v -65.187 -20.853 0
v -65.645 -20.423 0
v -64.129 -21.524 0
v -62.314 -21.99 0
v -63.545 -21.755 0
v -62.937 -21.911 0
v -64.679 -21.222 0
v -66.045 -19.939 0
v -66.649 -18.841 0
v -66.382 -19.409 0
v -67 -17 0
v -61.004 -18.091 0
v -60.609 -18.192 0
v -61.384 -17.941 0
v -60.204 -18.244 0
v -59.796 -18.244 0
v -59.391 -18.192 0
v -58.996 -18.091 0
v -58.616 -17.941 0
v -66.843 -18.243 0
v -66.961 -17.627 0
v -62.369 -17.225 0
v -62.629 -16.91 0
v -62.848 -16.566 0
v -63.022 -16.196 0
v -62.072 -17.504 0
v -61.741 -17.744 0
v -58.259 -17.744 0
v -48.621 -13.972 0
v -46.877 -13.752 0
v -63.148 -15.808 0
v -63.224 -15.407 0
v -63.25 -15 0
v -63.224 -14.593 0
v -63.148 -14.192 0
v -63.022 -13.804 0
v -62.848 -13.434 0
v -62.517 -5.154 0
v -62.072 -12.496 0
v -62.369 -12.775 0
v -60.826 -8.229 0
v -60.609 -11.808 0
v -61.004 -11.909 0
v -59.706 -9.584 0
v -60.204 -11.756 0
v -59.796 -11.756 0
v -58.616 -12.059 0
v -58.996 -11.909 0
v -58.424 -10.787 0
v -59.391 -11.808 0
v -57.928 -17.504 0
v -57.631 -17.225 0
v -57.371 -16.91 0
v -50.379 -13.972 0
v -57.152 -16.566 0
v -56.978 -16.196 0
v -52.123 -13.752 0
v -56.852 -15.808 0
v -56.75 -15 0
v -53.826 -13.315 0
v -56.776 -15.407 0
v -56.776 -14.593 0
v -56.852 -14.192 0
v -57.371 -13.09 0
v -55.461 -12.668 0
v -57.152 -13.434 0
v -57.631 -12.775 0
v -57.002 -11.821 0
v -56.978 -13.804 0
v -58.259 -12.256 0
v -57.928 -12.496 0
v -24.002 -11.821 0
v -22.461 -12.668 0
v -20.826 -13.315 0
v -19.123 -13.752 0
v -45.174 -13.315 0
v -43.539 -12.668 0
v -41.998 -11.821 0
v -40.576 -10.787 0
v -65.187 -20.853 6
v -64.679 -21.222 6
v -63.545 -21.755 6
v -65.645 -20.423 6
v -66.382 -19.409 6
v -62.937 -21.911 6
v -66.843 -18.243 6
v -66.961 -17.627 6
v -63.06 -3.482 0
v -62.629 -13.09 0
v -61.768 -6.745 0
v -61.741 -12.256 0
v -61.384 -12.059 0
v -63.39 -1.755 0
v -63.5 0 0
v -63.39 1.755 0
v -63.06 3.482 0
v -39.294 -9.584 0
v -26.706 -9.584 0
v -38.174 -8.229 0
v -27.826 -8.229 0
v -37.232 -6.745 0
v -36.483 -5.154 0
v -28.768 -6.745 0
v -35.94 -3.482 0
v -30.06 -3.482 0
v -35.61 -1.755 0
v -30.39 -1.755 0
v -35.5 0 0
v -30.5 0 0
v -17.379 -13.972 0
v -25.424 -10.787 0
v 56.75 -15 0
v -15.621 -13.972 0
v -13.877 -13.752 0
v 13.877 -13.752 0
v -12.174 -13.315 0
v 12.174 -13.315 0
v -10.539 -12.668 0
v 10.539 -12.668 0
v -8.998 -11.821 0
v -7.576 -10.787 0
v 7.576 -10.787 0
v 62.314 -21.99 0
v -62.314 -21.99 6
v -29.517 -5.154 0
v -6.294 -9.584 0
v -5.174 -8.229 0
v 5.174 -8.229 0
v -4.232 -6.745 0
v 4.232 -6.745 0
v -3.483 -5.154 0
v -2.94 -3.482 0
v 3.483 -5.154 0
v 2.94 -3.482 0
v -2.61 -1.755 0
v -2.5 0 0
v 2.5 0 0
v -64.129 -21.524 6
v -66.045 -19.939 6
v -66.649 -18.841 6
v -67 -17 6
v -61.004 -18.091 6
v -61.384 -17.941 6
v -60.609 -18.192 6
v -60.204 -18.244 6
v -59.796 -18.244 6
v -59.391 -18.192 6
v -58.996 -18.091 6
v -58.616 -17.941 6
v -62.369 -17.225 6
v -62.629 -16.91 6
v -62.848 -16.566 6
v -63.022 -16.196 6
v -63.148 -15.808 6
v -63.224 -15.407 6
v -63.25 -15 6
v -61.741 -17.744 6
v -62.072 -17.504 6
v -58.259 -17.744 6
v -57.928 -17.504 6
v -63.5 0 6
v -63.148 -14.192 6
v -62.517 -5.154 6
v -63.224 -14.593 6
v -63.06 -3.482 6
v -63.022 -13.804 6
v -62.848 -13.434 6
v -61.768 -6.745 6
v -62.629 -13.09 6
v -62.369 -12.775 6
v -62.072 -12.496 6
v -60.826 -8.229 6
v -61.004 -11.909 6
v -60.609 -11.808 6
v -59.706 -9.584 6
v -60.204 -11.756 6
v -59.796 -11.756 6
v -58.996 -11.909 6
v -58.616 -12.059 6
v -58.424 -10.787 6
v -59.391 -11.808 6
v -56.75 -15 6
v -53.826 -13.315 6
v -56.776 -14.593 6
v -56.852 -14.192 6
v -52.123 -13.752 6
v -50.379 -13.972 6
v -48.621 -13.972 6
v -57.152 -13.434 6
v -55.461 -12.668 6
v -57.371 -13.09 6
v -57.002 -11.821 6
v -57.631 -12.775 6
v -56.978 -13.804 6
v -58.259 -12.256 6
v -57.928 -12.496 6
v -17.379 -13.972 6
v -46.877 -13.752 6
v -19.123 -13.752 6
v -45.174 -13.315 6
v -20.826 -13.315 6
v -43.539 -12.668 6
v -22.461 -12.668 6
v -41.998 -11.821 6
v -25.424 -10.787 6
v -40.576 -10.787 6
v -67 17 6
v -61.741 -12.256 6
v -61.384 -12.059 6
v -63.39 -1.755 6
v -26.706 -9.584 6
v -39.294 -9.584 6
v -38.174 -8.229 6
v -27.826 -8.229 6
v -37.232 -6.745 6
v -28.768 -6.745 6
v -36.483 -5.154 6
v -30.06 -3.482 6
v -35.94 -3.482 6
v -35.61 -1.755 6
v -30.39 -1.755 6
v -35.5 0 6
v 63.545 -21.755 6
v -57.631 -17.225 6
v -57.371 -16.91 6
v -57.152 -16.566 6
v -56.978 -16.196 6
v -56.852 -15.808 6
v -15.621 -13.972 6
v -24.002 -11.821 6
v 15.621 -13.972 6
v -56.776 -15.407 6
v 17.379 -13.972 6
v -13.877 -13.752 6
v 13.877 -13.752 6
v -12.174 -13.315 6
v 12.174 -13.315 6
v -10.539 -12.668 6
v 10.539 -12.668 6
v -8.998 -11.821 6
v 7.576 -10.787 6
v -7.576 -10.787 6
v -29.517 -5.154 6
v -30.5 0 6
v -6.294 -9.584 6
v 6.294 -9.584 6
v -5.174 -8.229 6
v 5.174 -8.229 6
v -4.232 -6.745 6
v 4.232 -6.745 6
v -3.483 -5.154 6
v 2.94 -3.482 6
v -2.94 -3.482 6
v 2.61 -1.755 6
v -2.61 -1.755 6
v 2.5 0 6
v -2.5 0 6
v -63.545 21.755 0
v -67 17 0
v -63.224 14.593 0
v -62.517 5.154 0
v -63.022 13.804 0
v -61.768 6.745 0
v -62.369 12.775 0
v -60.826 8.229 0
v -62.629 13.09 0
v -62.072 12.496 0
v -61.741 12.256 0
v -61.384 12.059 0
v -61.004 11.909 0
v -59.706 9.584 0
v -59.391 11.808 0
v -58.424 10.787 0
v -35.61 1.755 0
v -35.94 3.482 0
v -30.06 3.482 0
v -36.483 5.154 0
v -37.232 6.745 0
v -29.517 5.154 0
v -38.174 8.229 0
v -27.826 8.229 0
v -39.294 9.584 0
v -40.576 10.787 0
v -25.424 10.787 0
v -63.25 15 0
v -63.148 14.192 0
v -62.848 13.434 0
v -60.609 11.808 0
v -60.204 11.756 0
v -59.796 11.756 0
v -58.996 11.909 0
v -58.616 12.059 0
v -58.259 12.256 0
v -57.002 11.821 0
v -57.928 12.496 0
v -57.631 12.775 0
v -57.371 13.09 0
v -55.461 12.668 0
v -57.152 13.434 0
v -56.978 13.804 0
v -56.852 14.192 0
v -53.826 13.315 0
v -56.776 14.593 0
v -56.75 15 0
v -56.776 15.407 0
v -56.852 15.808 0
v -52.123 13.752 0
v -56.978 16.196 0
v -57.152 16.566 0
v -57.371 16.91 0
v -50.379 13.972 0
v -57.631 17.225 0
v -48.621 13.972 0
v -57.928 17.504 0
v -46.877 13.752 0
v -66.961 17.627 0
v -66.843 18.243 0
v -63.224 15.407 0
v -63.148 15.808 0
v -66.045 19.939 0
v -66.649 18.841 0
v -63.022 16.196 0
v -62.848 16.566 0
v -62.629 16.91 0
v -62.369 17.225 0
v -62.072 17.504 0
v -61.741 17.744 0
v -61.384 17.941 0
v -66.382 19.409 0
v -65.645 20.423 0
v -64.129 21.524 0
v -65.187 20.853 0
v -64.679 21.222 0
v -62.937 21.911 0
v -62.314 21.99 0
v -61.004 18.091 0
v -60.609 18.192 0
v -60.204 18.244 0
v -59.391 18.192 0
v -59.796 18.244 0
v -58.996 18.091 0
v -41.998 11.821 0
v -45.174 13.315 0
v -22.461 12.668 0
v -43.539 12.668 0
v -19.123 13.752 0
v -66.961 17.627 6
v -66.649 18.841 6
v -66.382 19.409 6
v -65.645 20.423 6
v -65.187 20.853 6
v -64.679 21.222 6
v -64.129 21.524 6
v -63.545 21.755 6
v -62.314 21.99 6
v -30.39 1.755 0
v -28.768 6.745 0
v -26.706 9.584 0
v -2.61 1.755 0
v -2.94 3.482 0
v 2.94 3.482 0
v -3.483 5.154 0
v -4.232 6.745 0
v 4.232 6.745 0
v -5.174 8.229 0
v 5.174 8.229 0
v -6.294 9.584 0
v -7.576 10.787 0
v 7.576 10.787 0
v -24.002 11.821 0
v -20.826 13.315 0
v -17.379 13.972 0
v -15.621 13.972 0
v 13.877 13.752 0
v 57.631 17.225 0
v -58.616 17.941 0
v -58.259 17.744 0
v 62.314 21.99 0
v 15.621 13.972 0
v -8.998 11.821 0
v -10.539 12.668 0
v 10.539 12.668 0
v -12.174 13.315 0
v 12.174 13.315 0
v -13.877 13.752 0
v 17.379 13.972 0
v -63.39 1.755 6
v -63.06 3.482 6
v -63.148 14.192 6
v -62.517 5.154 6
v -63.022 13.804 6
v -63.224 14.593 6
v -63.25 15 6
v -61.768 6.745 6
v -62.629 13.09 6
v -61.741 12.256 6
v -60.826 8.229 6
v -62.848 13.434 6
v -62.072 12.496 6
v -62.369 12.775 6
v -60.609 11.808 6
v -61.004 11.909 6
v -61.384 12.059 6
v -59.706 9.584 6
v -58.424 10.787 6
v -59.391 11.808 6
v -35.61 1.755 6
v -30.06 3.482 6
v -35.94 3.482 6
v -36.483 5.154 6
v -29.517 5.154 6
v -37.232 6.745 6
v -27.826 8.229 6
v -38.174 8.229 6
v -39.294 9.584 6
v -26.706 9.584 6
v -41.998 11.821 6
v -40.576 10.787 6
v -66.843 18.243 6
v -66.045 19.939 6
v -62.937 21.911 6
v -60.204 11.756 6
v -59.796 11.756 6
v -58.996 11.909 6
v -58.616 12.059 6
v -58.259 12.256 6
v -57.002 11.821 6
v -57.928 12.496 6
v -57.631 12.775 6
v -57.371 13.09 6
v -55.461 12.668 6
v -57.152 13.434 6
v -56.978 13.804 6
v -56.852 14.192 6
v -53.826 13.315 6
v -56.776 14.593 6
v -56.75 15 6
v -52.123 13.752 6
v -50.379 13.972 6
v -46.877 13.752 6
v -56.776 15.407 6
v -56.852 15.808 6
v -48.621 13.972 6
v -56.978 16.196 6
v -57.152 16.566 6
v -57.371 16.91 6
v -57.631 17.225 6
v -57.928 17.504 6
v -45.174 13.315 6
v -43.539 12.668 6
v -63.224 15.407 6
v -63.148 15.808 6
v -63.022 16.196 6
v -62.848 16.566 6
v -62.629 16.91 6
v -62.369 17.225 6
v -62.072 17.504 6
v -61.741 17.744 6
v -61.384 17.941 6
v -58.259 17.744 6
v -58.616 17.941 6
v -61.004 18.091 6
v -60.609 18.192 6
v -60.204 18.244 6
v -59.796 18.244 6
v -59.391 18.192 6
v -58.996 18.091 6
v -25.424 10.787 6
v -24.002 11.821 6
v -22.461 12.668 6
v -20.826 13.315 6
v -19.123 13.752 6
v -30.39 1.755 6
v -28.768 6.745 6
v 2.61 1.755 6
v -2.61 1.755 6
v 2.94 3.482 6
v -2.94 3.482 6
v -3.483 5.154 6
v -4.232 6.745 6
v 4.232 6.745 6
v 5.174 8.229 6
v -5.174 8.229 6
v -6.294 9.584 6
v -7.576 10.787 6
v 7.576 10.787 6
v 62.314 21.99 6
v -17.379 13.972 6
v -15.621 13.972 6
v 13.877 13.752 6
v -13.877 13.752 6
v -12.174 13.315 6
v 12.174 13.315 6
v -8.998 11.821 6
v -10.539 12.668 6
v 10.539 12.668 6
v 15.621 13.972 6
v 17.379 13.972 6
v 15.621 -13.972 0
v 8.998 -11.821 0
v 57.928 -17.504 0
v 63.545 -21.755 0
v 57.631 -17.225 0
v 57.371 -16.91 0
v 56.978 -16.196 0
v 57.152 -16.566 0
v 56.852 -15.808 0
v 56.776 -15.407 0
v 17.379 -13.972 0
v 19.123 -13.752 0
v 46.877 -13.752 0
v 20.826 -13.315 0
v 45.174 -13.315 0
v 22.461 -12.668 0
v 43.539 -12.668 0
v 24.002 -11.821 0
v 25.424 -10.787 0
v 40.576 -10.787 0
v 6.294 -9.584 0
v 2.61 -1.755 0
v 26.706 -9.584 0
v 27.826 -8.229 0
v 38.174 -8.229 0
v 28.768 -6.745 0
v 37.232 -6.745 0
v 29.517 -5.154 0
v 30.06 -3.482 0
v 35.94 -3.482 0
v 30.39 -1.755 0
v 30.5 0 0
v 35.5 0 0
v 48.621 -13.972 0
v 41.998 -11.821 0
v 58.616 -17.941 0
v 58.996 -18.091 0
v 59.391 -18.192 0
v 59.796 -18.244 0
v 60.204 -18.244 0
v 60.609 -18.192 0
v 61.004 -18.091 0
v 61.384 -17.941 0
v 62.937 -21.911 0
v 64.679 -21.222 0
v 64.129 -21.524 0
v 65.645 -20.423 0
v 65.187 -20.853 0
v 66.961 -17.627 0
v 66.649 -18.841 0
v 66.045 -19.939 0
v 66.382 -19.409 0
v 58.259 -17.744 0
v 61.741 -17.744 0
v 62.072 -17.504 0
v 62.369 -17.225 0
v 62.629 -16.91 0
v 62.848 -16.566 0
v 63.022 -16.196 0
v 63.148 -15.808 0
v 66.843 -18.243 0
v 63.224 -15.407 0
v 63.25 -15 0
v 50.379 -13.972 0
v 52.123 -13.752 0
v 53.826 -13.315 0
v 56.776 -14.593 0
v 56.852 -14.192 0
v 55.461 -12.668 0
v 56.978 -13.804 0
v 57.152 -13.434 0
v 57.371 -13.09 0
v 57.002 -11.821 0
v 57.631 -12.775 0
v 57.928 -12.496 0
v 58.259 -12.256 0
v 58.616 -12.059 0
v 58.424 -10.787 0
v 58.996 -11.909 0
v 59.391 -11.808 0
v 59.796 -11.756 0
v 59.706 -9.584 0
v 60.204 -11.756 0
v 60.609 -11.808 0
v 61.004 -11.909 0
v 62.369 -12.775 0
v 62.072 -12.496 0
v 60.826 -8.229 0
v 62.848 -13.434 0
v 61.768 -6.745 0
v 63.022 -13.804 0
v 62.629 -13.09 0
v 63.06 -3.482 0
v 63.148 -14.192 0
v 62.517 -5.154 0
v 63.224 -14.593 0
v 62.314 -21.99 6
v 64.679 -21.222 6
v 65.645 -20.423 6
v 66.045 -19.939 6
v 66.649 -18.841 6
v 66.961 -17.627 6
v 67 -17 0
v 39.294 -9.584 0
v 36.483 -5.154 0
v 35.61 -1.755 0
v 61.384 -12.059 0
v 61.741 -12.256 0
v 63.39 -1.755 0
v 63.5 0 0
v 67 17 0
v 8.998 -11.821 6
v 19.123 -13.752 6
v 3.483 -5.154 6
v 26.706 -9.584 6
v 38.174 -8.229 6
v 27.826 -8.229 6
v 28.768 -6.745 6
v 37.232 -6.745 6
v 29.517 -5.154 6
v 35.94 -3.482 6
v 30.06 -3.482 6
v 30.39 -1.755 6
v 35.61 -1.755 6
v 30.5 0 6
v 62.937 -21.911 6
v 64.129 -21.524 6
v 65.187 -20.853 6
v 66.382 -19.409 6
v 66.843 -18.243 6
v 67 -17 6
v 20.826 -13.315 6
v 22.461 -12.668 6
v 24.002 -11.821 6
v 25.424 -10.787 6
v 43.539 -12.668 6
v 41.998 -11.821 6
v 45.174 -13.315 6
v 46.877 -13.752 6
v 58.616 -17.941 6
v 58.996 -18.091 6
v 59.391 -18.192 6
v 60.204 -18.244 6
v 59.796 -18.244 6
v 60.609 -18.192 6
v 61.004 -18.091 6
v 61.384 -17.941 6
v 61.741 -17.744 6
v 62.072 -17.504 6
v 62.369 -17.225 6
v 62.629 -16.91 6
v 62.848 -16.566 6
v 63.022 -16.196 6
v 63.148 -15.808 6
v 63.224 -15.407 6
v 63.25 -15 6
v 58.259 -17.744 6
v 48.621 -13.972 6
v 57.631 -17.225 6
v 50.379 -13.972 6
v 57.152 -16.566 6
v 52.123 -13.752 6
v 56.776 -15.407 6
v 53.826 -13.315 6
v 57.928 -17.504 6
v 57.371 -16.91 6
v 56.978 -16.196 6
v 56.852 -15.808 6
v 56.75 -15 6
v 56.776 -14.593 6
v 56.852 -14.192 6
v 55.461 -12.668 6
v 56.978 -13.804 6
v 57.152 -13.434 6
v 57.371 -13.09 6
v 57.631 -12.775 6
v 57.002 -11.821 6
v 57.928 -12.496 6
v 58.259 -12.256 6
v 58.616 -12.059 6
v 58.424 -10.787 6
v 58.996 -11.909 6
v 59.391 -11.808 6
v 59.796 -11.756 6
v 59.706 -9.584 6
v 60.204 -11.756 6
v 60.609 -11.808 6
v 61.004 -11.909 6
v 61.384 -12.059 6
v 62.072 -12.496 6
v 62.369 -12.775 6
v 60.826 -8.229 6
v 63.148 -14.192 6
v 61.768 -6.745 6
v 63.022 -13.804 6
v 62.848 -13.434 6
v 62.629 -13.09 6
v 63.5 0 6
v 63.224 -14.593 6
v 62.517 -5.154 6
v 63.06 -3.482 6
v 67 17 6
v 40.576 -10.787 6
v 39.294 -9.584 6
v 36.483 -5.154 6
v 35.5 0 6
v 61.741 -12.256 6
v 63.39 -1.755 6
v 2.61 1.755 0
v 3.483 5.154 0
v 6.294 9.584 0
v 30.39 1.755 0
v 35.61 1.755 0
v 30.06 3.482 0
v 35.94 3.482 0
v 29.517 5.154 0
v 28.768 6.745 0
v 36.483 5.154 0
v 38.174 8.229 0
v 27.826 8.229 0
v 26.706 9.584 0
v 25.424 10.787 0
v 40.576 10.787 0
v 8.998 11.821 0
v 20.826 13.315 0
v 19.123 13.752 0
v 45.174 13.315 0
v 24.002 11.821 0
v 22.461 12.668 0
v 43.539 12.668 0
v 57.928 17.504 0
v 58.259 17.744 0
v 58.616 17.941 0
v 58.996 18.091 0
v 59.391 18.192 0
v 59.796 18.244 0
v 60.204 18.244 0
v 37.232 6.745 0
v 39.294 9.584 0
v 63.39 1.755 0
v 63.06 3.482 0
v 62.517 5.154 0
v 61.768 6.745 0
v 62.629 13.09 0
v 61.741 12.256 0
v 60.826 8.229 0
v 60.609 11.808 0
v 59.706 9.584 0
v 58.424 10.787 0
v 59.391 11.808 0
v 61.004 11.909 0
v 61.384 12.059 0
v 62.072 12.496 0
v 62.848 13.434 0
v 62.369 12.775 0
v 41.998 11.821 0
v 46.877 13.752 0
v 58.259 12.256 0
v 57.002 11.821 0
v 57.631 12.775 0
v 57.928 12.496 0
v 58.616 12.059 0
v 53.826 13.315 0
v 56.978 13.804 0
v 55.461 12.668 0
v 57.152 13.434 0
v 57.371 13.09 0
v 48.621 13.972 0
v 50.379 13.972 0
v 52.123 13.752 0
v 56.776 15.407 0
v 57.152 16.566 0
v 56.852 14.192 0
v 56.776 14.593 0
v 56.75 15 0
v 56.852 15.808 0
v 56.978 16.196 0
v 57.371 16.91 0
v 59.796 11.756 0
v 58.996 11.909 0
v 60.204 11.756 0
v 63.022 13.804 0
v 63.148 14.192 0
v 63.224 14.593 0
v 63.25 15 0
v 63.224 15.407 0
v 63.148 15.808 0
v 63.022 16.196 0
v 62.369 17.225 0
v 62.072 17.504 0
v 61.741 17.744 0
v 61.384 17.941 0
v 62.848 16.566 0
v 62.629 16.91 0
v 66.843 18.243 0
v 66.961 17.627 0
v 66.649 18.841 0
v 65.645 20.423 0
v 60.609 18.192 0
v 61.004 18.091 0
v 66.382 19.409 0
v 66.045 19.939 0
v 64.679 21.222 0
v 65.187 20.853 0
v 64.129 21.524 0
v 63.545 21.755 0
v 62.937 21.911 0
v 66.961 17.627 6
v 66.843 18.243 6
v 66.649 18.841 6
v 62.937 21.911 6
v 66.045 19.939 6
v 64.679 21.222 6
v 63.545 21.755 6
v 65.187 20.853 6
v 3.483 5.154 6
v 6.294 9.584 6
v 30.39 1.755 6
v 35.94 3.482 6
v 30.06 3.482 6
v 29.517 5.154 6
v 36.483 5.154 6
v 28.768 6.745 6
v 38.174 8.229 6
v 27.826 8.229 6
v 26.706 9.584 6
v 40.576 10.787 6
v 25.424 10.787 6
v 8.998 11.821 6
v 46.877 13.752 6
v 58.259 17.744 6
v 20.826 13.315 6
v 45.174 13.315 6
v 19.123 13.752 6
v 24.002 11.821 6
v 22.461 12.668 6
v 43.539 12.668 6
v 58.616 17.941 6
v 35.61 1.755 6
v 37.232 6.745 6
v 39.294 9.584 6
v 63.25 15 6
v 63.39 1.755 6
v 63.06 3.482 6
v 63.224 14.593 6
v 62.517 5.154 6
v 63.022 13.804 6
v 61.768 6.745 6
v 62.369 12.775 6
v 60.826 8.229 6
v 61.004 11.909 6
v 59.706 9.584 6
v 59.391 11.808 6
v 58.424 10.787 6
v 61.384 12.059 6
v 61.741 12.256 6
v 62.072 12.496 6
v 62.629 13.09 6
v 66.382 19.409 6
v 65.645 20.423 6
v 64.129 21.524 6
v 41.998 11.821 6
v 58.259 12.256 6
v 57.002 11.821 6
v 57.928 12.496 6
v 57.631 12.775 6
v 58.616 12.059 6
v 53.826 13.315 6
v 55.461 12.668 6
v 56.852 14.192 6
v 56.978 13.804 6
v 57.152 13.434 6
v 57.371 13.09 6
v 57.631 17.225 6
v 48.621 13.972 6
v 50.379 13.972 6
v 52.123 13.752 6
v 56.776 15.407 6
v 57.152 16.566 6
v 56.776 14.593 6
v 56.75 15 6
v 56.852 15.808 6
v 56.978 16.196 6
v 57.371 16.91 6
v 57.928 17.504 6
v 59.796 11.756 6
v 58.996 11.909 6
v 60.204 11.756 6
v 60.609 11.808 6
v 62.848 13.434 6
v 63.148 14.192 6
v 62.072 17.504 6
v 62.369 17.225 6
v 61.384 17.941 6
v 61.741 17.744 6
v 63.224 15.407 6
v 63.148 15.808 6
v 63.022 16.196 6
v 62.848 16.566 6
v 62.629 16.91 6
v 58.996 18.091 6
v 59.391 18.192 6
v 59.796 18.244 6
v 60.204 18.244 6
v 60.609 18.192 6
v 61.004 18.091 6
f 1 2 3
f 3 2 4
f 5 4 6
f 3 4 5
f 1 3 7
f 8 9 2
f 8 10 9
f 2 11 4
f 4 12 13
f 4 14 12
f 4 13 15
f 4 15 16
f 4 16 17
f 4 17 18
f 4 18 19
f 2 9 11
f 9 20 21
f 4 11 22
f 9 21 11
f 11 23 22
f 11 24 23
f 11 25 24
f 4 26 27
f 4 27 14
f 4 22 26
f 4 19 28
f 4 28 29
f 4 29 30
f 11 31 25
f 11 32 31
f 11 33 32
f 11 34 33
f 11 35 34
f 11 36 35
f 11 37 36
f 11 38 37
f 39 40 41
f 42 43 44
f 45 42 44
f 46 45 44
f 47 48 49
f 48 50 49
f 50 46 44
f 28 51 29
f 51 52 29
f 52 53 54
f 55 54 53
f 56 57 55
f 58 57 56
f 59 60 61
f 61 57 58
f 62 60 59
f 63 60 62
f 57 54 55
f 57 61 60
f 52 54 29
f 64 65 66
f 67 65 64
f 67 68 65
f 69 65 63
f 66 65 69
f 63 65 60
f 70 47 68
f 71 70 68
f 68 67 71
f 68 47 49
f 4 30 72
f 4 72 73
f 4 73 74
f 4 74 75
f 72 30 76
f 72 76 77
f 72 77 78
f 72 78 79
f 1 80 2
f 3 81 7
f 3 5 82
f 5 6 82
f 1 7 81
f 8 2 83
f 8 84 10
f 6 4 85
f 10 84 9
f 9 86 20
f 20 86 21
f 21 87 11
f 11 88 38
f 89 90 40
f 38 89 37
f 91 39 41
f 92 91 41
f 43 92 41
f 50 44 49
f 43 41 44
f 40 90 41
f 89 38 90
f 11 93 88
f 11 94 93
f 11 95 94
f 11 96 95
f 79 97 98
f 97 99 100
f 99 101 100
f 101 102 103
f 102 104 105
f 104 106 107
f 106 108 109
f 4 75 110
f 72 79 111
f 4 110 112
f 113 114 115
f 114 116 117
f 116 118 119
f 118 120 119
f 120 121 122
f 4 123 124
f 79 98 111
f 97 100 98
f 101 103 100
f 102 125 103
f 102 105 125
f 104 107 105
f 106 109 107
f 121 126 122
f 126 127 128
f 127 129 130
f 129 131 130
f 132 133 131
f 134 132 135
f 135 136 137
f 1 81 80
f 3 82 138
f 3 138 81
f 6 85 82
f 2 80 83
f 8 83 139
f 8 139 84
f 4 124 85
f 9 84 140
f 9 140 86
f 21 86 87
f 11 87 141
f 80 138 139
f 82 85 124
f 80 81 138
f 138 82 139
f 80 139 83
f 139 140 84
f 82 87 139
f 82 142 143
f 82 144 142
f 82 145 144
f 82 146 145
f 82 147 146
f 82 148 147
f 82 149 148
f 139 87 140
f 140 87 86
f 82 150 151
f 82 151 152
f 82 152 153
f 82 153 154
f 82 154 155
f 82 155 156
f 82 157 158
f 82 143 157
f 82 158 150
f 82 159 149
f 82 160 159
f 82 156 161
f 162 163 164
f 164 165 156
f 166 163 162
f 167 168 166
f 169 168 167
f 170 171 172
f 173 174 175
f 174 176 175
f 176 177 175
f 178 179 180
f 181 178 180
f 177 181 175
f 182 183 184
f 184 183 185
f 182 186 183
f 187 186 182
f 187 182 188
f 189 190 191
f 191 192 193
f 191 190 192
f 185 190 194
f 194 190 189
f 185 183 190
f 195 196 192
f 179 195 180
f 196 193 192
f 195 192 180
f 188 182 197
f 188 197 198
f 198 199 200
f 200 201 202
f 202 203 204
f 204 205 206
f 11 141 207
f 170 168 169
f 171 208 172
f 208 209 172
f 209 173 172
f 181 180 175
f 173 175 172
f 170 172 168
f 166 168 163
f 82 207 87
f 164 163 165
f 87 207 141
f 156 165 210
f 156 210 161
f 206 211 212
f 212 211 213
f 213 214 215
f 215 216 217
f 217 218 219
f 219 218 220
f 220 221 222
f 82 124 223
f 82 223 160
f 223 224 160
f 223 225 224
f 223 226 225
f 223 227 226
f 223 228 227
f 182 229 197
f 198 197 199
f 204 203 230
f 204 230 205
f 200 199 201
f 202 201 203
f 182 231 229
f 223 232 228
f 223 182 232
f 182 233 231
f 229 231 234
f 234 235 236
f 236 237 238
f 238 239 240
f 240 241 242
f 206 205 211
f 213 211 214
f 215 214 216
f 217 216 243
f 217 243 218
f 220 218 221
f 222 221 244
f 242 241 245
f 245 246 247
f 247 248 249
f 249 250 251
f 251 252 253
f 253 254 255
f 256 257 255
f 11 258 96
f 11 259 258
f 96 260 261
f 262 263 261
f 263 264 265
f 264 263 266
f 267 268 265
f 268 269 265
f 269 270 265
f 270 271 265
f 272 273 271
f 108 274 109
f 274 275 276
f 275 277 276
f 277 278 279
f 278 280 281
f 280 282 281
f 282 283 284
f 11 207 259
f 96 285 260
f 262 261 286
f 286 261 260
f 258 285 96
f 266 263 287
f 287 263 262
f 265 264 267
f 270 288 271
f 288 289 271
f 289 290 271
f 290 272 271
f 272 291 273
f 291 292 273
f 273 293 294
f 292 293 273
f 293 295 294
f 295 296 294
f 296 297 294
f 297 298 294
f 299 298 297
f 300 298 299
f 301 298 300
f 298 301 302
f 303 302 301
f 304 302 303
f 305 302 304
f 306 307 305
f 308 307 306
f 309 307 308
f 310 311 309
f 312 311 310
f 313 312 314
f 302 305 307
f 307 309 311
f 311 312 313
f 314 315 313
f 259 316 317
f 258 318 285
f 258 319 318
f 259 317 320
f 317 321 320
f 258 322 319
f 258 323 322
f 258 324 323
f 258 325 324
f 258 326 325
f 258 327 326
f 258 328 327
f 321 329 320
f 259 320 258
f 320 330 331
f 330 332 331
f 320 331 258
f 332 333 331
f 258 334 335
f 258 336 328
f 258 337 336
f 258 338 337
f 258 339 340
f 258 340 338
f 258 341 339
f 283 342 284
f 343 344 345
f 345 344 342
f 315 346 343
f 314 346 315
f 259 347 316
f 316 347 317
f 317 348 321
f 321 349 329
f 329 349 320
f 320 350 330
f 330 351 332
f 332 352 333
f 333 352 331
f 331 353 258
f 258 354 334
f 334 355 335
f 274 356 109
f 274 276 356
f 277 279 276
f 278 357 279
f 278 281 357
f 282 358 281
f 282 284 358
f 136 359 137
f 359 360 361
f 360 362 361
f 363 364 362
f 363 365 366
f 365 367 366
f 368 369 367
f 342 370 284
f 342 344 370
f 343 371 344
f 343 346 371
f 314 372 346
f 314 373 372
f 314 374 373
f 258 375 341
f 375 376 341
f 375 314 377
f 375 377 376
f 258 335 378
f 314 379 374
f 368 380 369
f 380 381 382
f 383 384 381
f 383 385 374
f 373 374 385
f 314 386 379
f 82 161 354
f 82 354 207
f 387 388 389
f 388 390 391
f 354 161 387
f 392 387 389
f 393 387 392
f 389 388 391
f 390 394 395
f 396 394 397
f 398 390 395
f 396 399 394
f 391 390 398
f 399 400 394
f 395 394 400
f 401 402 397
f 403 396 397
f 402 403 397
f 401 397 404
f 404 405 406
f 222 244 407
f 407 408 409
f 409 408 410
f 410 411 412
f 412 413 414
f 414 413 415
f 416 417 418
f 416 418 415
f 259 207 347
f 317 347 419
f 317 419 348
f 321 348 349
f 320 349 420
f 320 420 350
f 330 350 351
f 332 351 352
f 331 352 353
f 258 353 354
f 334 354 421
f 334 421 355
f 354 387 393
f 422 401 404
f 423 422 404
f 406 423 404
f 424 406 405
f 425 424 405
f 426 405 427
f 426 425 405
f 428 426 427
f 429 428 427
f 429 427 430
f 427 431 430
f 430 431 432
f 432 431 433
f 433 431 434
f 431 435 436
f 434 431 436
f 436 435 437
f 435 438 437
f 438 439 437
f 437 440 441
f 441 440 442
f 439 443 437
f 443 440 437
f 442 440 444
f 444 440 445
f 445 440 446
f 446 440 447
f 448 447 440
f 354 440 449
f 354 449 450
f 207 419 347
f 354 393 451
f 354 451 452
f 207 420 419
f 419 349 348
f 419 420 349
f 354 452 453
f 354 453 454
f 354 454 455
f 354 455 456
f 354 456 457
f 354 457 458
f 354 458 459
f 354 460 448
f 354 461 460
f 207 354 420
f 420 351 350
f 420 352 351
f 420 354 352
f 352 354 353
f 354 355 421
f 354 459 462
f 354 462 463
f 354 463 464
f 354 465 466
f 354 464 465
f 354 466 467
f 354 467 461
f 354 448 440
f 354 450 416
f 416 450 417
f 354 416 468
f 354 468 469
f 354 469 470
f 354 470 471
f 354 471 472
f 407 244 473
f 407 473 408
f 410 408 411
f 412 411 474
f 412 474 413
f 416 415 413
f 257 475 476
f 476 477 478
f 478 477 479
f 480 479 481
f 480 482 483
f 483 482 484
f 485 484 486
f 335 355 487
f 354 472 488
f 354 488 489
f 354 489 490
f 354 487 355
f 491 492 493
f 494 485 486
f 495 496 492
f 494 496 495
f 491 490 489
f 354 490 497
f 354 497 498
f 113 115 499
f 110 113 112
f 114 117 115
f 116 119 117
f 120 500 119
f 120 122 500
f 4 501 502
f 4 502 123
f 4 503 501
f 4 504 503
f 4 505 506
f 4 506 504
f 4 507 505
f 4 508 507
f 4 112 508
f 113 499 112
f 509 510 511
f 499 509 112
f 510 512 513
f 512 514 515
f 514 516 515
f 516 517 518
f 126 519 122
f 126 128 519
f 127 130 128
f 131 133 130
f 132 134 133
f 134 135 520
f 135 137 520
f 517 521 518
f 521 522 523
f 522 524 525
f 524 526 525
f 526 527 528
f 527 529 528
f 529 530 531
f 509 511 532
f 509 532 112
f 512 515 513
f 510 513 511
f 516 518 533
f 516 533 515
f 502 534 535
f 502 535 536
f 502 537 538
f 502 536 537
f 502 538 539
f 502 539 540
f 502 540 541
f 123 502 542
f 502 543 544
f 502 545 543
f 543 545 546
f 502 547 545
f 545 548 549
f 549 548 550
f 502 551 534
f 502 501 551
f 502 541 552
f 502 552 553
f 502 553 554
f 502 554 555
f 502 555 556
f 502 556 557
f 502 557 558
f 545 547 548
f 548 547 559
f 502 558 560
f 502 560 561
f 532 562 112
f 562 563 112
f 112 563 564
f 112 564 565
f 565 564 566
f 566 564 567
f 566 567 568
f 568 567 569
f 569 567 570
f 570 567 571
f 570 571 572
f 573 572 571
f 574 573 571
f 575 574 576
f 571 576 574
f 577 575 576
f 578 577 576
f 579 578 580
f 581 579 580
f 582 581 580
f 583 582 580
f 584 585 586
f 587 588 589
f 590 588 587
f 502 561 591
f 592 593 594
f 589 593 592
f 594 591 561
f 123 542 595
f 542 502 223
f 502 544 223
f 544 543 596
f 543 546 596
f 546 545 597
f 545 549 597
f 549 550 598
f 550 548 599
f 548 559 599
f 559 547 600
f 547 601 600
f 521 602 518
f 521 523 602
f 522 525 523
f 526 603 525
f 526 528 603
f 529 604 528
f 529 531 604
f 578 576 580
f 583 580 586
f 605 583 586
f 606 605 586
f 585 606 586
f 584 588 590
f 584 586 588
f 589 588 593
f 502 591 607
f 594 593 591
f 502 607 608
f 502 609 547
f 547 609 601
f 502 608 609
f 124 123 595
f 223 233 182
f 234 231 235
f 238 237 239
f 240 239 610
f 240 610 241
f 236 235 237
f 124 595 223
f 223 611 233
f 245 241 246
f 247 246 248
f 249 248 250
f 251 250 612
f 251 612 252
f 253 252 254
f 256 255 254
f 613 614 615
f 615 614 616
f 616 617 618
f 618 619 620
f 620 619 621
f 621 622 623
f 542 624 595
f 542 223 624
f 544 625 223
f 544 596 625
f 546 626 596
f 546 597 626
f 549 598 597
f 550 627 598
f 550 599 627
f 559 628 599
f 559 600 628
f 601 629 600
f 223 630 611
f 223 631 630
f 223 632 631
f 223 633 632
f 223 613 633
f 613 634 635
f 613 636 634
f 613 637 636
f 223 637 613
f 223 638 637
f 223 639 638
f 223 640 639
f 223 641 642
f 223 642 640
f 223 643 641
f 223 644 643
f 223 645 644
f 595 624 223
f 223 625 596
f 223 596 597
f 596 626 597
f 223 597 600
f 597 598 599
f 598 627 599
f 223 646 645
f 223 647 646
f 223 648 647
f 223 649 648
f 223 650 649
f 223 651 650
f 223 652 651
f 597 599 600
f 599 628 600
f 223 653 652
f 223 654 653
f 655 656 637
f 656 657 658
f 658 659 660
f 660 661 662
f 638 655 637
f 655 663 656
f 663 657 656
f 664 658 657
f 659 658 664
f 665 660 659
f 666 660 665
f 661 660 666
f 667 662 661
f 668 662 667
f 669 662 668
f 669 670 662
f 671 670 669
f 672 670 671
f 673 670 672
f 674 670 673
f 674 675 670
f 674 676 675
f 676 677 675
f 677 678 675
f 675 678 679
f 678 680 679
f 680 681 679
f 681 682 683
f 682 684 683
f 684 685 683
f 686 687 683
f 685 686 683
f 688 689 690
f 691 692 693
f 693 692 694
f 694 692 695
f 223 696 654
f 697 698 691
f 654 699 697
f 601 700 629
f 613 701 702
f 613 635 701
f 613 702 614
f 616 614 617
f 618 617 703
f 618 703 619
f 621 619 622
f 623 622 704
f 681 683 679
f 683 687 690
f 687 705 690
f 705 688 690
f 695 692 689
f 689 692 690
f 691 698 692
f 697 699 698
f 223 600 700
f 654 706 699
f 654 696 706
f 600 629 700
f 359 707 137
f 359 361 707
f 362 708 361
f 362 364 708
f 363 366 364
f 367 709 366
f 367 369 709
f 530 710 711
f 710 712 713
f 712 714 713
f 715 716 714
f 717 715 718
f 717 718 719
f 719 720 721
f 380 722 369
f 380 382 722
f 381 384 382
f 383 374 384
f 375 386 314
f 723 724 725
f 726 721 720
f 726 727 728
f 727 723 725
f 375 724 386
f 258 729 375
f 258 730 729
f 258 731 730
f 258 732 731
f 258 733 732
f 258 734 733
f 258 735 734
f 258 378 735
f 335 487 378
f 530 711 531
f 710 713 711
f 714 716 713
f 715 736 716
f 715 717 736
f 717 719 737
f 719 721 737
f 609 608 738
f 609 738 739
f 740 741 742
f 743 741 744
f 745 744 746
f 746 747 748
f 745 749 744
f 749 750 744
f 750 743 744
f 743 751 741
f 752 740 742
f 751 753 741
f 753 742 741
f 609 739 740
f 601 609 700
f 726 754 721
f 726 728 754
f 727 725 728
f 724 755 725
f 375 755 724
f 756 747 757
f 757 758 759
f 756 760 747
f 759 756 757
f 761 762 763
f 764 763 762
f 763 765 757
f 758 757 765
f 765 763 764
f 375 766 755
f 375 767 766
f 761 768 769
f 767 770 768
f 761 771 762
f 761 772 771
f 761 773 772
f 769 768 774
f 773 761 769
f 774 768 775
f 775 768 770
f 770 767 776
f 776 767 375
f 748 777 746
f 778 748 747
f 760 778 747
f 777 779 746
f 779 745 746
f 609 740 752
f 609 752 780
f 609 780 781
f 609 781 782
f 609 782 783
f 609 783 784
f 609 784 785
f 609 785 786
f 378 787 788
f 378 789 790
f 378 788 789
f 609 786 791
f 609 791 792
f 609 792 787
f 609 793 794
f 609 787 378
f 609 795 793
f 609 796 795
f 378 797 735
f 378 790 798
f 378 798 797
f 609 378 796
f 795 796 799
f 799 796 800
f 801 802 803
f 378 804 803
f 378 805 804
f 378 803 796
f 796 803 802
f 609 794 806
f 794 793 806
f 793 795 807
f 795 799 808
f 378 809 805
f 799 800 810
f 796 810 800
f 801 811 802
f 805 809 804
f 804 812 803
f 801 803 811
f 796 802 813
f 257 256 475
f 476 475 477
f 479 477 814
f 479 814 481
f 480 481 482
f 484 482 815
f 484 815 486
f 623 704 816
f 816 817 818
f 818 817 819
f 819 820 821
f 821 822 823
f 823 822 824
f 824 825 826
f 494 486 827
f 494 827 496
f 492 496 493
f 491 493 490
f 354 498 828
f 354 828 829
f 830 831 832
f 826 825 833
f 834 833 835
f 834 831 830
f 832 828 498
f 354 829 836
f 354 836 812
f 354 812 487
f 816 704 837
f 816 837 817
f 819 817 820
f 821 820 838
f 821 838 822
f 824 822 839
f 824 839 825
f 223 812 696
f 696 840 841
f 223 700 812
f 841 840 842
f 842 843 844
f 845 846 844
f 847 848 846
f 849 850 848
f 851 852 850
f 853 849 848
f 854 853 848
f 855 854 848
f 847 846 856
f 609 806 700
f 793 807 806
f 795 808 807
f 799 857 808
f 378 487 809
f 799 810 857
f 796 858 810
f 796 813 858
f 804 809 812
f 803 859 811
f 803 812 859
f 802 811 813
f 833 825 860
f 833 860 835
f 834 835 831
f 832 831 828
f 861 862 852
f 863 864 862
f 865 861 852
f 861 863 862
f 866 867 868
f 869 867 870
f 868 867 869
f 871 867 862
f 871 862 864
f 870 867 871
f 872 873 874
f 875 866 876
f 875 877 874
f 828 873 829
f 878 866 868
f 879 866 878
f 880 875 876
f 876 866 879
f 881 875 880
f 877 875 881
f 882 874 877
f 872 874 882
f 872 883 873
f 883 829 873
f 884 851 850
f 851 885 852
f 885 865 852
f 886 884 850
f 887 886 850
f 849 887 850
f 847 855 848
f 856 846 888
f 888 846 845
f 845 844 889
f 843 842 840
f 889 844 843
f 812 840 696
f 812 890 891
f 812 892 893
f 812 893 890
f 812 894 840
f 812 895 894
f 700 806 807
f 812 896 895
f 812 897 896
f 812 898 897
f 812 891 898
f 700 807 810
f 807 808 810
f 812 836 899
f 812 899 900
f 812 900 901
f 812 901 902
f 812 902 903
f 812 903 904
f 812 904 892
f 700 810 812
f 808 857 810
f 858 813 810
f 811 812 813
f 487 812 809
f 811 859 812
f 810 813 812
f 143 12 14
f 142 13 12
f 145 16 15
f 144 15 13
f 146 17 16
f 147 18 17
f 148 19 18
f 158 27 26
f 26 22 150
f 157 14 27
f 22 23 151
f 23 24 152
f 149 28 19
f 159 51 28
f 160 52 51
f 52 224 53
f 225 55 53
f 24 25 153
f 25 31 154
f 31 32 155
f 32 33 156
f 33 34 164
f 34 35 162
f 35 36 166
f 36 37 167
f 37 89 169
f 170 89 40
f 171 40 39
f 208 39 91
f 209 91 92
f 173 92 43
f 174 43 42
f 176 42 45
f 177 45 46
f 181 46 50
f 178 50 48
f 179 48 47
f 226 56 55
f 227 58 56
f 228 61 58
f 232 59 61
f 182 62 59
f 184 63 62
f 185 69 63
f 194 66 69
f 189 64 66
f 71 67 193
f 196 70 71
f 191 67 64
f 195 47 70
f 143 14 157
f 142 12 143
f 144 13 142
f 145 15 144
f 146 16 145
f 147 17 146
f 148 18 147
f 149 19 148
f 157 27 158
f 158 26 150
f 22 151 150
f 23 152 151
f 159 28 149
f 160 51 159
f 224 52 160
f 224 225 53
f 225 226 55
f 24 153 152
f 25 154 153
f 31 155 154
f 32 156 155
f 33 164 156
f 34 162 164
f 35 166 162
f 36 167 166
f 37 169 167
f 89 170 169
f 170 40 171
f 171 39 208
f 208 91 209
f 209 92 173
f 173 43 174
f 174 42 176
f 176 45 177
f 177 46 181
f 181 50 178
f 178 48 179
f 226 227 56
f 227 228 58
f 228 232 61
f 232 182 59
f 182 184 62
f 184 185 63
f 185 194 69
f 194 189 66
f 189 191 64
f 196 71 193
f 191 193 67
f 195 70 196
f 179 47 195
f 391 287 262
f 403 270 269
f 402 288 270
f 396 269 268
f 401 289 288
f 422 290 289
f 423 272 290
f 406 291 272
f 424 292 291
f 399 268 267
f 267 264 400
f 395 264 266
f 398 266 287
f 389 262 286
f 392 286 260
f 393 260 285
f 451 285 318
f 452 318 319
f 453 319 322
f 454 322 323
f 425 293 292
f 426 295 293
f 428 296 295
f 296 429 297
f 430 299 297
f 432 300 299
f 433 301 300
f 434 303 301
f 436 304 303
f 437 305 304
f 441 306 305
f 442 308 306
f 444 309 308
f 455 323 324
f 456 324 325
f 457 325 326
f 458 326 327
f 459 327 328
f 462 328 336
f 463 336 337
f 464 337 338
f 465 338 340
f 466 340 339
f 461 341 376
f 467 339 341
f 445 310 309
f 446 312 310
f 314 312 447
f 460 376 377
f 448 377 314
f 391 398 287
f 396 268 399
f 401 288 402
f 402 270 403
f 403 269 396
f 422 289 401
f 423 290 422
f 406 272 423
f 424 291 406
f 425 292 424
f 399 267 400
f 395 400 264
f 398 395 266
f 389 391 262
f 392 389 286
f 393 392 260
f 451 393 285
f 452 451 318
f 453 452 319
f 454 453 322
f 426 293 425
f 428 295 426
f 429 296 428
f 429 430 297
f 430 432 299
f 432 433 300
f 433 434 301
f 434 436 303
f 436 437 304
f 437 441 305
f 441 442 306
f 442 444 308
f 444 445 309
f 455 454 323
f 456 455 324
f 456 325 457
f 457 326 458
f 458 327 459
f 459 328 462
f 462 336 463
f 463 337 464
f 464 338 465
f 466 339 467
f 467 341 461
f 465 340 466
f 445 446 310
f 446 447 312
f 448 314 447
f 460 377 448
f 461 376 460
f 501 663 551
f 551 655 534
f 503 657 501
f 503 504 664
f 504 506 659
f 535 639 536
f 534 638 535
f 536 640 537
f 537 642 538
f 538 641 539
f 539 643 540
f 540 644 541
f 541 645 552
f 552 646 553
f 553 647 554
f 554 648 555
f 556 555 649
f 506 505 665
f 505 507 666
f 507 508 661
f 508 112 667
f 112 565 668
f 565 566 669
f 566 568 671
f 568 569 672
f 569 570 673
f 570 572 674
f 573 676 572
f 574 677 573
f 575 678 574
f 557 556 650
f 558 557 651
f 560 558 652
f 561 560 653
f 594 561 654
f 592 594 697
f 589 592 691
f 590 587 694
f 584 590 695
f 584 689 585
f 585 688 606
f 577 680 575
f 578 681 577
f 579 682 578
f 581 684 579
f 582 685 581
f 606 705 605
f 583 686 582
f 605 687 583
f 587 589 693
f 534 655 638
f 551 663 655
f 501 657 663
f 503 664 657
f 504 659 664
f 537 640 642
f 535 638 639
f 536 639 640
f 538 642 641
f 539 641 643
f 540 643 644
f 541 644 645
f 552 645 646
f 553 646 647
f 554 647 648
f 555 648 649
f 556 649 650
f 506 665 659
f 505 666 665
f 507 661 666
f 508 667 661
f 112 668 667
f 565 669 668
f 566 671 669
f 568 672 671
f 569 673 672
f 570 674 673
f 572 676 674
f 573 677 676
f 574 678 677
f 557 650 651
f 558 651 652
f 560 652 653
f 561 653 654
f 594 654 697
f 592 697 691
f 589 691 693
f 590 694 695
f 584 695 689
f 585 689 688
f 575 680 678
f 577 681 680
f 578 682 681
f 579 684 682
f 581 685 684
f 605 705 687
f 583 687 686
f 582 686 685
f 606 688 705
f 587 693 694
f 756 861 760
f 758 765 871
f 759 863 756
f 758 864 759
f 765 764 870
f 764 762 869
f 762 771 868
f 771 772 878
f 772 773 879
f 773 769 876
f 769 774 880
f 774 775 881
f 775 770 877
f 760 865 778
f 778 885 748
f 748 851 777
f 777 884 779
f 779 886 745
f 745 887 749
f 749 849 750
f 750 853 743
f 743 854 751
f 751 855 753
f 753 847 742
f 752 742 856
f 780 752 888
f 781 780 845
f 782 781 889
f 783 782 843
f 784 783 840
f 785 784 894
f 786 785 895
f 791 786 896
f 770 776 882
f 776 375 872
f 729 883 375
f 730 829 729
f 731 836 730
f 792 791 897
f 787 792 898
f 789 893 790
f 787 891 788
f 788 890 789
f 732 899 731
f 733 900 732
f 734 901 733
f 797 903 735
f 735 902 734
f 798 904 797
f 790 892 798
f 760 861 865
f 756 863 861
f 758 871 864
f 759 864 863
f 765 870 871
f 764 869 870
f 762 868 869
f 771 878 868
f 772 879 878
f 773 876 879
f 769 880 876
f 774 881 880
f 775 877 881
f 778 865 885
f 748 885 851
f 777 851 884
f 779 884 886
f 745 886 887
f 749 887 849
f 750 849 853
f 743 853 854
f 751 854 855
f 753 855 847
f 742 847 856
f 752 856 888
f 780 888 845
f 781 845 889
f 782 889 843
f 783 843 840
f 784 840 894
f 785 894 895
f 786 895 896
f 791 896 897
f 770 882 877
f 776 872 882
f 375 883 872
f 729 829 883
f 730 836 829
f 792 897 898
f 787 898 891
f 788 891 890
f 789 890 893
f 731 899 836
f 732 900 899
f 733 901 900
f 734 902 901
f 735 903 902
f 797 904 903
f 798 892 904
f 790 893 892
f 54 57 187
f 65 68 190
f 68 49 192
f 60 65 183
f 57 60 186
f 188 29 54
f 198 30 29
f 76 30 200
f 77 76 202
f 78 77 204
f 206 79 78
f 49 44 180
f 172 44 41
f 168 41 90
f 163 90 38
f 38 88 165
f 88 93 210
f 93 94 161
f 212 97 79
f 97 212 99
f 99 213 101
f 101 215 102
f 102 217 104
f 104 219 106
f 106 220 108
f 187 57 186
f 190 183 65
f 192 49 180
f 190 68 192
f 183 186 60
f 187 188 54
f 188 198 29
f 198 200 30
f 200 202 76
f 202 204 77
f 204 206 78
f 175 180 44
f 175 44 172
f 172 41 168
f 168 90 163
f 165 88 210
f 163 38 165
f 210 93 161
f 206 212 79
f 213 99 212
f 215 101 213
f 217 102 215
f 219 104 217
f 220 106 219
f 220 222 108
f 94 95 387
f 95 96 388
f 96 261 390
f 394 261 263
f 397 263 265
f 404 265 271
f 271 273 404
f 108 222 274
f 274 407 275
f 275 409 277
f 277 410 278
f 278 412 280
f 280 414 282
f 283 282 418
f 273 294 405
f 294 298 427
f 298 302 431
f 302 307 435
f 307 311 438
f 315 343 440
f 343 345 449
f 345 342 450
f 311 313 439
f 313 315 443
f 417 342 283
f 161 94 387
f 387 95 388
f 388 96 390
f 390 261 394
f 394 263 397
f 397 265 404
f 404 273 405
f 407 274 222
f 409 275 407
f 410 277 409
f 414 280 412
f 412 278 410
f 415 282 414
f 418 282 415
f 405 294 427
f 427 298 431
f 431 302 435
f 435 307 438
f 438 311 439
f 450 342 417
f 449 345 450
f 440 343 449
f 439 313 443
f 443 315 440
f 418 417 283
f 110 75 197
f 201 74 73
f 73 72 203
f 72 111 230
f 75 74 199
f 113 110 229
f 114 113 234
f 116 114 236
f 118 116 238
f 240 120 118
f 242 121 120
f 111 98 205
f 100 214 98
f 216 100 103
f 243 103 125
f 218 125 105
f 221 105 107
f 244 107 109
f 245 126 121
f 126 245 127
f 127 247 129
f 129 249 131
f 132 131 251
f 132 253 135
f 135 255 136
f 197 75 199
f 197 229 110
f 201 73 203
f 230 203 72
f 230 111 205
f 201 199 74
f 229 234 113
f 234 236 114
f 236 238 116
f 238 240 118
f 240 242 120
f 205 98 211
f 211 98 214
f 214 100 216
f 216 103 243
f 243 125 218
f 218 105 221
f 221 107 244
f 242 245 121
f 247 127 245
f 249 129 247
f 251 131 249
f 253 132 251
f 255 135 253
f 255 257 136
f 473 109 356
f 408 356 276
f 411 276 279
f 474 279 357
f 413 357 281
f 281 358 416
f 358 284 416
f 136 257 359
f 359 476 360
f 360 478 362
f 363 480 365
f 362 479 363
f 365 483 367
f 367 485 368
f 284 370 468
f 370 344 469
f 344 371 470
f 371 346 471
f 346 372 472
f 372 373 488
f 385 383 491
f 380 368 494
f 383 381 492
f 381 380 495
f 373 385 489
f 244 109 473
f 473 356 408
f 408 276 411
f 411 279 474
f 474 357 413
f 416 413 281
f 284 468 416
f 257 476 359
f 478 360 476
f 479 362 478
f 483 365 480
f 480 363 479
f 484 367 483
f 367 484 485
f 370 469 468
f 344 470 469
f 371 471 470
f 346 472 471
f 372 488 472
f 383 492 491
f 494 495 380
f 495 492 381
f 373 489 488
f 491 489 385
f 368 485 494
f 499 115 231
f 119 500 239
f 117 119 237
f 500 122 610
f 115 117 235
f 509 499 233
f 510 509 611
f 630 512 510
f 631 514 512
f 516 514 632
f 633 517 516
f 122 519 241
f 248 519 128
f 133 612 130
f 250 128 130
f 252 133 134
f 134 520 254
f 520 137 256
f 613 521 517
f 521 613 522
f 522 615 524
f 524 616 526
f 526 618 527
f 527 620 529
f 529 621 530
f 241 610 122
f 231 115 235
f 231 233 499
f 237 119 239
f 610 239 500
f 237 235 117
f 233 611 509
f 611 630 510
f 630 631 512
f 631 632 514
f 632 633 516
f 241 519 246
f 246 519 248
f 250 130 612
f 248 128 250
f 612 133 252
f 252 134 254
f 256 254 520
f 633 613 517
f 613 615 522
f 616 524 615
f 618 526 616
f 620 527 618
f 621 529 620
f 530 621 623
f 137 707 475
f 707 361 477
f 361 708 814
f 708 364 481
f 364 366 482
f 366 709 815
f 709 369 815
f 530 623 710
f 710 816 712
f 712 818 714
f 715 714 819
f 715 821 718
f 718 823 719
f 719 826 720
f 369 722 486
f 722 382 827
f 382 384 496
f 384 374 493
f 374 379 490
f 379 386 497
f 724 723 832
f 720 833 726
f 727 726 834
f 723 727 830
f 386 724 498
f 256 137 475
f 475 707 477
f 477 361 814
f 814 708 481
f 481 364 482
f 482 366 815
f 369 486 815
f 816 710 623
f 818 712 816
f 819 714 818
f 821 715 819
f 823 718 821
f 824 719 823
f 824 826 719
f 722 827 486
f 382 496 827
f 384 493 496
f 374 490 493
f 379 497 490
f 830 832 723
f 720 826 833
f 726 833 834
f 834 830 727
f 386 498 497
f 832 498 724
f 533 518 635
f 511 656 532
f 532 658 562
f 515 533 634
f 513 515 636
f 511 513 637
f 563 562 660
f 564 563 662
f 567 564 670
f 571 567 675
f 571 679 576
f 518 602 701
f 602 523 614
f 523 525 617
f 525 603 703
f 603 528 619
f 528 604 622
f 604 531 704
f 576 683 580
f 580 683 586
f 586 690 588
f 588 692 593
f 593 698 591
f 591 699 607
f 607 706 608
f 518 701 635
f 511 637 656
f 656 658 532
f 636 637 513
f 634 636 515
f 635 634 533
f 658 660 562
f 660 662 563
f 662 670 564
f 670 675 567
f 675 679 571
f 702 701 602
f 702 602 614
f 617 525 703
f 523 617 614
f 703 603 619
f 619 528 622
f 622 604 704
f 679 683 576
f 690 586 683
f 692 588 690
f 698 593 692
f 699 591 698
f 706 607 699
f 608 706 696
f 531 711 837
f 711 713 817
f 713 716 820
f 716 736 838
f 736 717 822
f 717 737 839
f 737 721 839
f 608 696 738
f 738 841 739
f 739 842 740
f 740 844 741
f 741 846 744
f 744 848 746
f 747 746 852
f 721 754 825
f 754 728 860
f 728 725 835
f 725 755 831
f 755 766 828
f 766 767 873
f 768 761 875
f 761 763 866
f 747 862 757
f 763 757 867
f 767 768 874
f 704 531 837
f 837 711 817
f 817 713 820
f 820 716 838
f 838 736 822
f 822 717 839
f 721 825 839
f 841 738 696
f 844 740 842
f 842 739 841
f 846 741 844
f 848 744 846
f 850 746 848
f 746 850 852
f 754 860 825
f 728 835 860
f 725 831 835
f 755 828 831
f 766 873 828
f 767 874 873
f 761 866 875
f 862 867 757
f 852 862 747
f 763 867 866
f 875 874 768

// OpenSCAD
$fn = 50;

difference() {
	union() {
		hull() {
			translate(v = [-62.0, 17.0, 0]) {
				cylinder(h = 6, r = 5);
			}
			translate(v = [62.0, 17.0, 0]) {
				cylinder(h = 6, r = 5);
			}
			translate(v = [-62.0, -17.0, 0]) {
				cylinder(h = 6, r = 5);
			}
			translate(v = [62.0, -17.0, 0]) {
				cylinder(h = 6, r = 5);
			}
		}
	}
	union() {
		translate(v = [-60.0, -15.0, -100.0]) {
			cylinder(h = 200, r = 3.25);
		}
		translate(v = [-60.0, 15.0, -100.0]) {
			cylinder(h = 200, r = 3.25);
		}
		translate(v = [60.0, -15.0, -100.0]) {
			cylinder(h = 200, r = 3.25);
		}
		translate(v = [60.0, 15.0, -100.0]) {
			cylinder(h = 200, r = 3.25);
		}
		translate(v = [-60.0, -15.0, -100.0]) {
			cylinder(h = 200, r = 1.8);
		}
		translate(v = [-60.0, 15.0, -100.0]) {
			cylinder(h = 200, r = 1.8);
		}
		translate(v = [60.0, -15.0, -100.0]) {
			cylinder(h = 200, r = 1.8);
		}
		translate(v = [60.0, 15.0, -100.0]) {
			cylinder(h = 200, r = 1.8);
		}
		translate(v = [-49.5, 0, 0.0]) {
			cylinder(h = 6, r = 14.0);
		}
		translate(v = [-16.5, 0, 0.0]) {
			cylinder(h = 6, r = 14.0);
		}
		translate(v = [16.5, 0, 0.0]) {
			cylinder(h = 6, r = 14.0);
		}
		translate(v = [49.5, 0, 0.0]) {
			cylinder(h = 6, r = 14.0);
		}
	}
}
